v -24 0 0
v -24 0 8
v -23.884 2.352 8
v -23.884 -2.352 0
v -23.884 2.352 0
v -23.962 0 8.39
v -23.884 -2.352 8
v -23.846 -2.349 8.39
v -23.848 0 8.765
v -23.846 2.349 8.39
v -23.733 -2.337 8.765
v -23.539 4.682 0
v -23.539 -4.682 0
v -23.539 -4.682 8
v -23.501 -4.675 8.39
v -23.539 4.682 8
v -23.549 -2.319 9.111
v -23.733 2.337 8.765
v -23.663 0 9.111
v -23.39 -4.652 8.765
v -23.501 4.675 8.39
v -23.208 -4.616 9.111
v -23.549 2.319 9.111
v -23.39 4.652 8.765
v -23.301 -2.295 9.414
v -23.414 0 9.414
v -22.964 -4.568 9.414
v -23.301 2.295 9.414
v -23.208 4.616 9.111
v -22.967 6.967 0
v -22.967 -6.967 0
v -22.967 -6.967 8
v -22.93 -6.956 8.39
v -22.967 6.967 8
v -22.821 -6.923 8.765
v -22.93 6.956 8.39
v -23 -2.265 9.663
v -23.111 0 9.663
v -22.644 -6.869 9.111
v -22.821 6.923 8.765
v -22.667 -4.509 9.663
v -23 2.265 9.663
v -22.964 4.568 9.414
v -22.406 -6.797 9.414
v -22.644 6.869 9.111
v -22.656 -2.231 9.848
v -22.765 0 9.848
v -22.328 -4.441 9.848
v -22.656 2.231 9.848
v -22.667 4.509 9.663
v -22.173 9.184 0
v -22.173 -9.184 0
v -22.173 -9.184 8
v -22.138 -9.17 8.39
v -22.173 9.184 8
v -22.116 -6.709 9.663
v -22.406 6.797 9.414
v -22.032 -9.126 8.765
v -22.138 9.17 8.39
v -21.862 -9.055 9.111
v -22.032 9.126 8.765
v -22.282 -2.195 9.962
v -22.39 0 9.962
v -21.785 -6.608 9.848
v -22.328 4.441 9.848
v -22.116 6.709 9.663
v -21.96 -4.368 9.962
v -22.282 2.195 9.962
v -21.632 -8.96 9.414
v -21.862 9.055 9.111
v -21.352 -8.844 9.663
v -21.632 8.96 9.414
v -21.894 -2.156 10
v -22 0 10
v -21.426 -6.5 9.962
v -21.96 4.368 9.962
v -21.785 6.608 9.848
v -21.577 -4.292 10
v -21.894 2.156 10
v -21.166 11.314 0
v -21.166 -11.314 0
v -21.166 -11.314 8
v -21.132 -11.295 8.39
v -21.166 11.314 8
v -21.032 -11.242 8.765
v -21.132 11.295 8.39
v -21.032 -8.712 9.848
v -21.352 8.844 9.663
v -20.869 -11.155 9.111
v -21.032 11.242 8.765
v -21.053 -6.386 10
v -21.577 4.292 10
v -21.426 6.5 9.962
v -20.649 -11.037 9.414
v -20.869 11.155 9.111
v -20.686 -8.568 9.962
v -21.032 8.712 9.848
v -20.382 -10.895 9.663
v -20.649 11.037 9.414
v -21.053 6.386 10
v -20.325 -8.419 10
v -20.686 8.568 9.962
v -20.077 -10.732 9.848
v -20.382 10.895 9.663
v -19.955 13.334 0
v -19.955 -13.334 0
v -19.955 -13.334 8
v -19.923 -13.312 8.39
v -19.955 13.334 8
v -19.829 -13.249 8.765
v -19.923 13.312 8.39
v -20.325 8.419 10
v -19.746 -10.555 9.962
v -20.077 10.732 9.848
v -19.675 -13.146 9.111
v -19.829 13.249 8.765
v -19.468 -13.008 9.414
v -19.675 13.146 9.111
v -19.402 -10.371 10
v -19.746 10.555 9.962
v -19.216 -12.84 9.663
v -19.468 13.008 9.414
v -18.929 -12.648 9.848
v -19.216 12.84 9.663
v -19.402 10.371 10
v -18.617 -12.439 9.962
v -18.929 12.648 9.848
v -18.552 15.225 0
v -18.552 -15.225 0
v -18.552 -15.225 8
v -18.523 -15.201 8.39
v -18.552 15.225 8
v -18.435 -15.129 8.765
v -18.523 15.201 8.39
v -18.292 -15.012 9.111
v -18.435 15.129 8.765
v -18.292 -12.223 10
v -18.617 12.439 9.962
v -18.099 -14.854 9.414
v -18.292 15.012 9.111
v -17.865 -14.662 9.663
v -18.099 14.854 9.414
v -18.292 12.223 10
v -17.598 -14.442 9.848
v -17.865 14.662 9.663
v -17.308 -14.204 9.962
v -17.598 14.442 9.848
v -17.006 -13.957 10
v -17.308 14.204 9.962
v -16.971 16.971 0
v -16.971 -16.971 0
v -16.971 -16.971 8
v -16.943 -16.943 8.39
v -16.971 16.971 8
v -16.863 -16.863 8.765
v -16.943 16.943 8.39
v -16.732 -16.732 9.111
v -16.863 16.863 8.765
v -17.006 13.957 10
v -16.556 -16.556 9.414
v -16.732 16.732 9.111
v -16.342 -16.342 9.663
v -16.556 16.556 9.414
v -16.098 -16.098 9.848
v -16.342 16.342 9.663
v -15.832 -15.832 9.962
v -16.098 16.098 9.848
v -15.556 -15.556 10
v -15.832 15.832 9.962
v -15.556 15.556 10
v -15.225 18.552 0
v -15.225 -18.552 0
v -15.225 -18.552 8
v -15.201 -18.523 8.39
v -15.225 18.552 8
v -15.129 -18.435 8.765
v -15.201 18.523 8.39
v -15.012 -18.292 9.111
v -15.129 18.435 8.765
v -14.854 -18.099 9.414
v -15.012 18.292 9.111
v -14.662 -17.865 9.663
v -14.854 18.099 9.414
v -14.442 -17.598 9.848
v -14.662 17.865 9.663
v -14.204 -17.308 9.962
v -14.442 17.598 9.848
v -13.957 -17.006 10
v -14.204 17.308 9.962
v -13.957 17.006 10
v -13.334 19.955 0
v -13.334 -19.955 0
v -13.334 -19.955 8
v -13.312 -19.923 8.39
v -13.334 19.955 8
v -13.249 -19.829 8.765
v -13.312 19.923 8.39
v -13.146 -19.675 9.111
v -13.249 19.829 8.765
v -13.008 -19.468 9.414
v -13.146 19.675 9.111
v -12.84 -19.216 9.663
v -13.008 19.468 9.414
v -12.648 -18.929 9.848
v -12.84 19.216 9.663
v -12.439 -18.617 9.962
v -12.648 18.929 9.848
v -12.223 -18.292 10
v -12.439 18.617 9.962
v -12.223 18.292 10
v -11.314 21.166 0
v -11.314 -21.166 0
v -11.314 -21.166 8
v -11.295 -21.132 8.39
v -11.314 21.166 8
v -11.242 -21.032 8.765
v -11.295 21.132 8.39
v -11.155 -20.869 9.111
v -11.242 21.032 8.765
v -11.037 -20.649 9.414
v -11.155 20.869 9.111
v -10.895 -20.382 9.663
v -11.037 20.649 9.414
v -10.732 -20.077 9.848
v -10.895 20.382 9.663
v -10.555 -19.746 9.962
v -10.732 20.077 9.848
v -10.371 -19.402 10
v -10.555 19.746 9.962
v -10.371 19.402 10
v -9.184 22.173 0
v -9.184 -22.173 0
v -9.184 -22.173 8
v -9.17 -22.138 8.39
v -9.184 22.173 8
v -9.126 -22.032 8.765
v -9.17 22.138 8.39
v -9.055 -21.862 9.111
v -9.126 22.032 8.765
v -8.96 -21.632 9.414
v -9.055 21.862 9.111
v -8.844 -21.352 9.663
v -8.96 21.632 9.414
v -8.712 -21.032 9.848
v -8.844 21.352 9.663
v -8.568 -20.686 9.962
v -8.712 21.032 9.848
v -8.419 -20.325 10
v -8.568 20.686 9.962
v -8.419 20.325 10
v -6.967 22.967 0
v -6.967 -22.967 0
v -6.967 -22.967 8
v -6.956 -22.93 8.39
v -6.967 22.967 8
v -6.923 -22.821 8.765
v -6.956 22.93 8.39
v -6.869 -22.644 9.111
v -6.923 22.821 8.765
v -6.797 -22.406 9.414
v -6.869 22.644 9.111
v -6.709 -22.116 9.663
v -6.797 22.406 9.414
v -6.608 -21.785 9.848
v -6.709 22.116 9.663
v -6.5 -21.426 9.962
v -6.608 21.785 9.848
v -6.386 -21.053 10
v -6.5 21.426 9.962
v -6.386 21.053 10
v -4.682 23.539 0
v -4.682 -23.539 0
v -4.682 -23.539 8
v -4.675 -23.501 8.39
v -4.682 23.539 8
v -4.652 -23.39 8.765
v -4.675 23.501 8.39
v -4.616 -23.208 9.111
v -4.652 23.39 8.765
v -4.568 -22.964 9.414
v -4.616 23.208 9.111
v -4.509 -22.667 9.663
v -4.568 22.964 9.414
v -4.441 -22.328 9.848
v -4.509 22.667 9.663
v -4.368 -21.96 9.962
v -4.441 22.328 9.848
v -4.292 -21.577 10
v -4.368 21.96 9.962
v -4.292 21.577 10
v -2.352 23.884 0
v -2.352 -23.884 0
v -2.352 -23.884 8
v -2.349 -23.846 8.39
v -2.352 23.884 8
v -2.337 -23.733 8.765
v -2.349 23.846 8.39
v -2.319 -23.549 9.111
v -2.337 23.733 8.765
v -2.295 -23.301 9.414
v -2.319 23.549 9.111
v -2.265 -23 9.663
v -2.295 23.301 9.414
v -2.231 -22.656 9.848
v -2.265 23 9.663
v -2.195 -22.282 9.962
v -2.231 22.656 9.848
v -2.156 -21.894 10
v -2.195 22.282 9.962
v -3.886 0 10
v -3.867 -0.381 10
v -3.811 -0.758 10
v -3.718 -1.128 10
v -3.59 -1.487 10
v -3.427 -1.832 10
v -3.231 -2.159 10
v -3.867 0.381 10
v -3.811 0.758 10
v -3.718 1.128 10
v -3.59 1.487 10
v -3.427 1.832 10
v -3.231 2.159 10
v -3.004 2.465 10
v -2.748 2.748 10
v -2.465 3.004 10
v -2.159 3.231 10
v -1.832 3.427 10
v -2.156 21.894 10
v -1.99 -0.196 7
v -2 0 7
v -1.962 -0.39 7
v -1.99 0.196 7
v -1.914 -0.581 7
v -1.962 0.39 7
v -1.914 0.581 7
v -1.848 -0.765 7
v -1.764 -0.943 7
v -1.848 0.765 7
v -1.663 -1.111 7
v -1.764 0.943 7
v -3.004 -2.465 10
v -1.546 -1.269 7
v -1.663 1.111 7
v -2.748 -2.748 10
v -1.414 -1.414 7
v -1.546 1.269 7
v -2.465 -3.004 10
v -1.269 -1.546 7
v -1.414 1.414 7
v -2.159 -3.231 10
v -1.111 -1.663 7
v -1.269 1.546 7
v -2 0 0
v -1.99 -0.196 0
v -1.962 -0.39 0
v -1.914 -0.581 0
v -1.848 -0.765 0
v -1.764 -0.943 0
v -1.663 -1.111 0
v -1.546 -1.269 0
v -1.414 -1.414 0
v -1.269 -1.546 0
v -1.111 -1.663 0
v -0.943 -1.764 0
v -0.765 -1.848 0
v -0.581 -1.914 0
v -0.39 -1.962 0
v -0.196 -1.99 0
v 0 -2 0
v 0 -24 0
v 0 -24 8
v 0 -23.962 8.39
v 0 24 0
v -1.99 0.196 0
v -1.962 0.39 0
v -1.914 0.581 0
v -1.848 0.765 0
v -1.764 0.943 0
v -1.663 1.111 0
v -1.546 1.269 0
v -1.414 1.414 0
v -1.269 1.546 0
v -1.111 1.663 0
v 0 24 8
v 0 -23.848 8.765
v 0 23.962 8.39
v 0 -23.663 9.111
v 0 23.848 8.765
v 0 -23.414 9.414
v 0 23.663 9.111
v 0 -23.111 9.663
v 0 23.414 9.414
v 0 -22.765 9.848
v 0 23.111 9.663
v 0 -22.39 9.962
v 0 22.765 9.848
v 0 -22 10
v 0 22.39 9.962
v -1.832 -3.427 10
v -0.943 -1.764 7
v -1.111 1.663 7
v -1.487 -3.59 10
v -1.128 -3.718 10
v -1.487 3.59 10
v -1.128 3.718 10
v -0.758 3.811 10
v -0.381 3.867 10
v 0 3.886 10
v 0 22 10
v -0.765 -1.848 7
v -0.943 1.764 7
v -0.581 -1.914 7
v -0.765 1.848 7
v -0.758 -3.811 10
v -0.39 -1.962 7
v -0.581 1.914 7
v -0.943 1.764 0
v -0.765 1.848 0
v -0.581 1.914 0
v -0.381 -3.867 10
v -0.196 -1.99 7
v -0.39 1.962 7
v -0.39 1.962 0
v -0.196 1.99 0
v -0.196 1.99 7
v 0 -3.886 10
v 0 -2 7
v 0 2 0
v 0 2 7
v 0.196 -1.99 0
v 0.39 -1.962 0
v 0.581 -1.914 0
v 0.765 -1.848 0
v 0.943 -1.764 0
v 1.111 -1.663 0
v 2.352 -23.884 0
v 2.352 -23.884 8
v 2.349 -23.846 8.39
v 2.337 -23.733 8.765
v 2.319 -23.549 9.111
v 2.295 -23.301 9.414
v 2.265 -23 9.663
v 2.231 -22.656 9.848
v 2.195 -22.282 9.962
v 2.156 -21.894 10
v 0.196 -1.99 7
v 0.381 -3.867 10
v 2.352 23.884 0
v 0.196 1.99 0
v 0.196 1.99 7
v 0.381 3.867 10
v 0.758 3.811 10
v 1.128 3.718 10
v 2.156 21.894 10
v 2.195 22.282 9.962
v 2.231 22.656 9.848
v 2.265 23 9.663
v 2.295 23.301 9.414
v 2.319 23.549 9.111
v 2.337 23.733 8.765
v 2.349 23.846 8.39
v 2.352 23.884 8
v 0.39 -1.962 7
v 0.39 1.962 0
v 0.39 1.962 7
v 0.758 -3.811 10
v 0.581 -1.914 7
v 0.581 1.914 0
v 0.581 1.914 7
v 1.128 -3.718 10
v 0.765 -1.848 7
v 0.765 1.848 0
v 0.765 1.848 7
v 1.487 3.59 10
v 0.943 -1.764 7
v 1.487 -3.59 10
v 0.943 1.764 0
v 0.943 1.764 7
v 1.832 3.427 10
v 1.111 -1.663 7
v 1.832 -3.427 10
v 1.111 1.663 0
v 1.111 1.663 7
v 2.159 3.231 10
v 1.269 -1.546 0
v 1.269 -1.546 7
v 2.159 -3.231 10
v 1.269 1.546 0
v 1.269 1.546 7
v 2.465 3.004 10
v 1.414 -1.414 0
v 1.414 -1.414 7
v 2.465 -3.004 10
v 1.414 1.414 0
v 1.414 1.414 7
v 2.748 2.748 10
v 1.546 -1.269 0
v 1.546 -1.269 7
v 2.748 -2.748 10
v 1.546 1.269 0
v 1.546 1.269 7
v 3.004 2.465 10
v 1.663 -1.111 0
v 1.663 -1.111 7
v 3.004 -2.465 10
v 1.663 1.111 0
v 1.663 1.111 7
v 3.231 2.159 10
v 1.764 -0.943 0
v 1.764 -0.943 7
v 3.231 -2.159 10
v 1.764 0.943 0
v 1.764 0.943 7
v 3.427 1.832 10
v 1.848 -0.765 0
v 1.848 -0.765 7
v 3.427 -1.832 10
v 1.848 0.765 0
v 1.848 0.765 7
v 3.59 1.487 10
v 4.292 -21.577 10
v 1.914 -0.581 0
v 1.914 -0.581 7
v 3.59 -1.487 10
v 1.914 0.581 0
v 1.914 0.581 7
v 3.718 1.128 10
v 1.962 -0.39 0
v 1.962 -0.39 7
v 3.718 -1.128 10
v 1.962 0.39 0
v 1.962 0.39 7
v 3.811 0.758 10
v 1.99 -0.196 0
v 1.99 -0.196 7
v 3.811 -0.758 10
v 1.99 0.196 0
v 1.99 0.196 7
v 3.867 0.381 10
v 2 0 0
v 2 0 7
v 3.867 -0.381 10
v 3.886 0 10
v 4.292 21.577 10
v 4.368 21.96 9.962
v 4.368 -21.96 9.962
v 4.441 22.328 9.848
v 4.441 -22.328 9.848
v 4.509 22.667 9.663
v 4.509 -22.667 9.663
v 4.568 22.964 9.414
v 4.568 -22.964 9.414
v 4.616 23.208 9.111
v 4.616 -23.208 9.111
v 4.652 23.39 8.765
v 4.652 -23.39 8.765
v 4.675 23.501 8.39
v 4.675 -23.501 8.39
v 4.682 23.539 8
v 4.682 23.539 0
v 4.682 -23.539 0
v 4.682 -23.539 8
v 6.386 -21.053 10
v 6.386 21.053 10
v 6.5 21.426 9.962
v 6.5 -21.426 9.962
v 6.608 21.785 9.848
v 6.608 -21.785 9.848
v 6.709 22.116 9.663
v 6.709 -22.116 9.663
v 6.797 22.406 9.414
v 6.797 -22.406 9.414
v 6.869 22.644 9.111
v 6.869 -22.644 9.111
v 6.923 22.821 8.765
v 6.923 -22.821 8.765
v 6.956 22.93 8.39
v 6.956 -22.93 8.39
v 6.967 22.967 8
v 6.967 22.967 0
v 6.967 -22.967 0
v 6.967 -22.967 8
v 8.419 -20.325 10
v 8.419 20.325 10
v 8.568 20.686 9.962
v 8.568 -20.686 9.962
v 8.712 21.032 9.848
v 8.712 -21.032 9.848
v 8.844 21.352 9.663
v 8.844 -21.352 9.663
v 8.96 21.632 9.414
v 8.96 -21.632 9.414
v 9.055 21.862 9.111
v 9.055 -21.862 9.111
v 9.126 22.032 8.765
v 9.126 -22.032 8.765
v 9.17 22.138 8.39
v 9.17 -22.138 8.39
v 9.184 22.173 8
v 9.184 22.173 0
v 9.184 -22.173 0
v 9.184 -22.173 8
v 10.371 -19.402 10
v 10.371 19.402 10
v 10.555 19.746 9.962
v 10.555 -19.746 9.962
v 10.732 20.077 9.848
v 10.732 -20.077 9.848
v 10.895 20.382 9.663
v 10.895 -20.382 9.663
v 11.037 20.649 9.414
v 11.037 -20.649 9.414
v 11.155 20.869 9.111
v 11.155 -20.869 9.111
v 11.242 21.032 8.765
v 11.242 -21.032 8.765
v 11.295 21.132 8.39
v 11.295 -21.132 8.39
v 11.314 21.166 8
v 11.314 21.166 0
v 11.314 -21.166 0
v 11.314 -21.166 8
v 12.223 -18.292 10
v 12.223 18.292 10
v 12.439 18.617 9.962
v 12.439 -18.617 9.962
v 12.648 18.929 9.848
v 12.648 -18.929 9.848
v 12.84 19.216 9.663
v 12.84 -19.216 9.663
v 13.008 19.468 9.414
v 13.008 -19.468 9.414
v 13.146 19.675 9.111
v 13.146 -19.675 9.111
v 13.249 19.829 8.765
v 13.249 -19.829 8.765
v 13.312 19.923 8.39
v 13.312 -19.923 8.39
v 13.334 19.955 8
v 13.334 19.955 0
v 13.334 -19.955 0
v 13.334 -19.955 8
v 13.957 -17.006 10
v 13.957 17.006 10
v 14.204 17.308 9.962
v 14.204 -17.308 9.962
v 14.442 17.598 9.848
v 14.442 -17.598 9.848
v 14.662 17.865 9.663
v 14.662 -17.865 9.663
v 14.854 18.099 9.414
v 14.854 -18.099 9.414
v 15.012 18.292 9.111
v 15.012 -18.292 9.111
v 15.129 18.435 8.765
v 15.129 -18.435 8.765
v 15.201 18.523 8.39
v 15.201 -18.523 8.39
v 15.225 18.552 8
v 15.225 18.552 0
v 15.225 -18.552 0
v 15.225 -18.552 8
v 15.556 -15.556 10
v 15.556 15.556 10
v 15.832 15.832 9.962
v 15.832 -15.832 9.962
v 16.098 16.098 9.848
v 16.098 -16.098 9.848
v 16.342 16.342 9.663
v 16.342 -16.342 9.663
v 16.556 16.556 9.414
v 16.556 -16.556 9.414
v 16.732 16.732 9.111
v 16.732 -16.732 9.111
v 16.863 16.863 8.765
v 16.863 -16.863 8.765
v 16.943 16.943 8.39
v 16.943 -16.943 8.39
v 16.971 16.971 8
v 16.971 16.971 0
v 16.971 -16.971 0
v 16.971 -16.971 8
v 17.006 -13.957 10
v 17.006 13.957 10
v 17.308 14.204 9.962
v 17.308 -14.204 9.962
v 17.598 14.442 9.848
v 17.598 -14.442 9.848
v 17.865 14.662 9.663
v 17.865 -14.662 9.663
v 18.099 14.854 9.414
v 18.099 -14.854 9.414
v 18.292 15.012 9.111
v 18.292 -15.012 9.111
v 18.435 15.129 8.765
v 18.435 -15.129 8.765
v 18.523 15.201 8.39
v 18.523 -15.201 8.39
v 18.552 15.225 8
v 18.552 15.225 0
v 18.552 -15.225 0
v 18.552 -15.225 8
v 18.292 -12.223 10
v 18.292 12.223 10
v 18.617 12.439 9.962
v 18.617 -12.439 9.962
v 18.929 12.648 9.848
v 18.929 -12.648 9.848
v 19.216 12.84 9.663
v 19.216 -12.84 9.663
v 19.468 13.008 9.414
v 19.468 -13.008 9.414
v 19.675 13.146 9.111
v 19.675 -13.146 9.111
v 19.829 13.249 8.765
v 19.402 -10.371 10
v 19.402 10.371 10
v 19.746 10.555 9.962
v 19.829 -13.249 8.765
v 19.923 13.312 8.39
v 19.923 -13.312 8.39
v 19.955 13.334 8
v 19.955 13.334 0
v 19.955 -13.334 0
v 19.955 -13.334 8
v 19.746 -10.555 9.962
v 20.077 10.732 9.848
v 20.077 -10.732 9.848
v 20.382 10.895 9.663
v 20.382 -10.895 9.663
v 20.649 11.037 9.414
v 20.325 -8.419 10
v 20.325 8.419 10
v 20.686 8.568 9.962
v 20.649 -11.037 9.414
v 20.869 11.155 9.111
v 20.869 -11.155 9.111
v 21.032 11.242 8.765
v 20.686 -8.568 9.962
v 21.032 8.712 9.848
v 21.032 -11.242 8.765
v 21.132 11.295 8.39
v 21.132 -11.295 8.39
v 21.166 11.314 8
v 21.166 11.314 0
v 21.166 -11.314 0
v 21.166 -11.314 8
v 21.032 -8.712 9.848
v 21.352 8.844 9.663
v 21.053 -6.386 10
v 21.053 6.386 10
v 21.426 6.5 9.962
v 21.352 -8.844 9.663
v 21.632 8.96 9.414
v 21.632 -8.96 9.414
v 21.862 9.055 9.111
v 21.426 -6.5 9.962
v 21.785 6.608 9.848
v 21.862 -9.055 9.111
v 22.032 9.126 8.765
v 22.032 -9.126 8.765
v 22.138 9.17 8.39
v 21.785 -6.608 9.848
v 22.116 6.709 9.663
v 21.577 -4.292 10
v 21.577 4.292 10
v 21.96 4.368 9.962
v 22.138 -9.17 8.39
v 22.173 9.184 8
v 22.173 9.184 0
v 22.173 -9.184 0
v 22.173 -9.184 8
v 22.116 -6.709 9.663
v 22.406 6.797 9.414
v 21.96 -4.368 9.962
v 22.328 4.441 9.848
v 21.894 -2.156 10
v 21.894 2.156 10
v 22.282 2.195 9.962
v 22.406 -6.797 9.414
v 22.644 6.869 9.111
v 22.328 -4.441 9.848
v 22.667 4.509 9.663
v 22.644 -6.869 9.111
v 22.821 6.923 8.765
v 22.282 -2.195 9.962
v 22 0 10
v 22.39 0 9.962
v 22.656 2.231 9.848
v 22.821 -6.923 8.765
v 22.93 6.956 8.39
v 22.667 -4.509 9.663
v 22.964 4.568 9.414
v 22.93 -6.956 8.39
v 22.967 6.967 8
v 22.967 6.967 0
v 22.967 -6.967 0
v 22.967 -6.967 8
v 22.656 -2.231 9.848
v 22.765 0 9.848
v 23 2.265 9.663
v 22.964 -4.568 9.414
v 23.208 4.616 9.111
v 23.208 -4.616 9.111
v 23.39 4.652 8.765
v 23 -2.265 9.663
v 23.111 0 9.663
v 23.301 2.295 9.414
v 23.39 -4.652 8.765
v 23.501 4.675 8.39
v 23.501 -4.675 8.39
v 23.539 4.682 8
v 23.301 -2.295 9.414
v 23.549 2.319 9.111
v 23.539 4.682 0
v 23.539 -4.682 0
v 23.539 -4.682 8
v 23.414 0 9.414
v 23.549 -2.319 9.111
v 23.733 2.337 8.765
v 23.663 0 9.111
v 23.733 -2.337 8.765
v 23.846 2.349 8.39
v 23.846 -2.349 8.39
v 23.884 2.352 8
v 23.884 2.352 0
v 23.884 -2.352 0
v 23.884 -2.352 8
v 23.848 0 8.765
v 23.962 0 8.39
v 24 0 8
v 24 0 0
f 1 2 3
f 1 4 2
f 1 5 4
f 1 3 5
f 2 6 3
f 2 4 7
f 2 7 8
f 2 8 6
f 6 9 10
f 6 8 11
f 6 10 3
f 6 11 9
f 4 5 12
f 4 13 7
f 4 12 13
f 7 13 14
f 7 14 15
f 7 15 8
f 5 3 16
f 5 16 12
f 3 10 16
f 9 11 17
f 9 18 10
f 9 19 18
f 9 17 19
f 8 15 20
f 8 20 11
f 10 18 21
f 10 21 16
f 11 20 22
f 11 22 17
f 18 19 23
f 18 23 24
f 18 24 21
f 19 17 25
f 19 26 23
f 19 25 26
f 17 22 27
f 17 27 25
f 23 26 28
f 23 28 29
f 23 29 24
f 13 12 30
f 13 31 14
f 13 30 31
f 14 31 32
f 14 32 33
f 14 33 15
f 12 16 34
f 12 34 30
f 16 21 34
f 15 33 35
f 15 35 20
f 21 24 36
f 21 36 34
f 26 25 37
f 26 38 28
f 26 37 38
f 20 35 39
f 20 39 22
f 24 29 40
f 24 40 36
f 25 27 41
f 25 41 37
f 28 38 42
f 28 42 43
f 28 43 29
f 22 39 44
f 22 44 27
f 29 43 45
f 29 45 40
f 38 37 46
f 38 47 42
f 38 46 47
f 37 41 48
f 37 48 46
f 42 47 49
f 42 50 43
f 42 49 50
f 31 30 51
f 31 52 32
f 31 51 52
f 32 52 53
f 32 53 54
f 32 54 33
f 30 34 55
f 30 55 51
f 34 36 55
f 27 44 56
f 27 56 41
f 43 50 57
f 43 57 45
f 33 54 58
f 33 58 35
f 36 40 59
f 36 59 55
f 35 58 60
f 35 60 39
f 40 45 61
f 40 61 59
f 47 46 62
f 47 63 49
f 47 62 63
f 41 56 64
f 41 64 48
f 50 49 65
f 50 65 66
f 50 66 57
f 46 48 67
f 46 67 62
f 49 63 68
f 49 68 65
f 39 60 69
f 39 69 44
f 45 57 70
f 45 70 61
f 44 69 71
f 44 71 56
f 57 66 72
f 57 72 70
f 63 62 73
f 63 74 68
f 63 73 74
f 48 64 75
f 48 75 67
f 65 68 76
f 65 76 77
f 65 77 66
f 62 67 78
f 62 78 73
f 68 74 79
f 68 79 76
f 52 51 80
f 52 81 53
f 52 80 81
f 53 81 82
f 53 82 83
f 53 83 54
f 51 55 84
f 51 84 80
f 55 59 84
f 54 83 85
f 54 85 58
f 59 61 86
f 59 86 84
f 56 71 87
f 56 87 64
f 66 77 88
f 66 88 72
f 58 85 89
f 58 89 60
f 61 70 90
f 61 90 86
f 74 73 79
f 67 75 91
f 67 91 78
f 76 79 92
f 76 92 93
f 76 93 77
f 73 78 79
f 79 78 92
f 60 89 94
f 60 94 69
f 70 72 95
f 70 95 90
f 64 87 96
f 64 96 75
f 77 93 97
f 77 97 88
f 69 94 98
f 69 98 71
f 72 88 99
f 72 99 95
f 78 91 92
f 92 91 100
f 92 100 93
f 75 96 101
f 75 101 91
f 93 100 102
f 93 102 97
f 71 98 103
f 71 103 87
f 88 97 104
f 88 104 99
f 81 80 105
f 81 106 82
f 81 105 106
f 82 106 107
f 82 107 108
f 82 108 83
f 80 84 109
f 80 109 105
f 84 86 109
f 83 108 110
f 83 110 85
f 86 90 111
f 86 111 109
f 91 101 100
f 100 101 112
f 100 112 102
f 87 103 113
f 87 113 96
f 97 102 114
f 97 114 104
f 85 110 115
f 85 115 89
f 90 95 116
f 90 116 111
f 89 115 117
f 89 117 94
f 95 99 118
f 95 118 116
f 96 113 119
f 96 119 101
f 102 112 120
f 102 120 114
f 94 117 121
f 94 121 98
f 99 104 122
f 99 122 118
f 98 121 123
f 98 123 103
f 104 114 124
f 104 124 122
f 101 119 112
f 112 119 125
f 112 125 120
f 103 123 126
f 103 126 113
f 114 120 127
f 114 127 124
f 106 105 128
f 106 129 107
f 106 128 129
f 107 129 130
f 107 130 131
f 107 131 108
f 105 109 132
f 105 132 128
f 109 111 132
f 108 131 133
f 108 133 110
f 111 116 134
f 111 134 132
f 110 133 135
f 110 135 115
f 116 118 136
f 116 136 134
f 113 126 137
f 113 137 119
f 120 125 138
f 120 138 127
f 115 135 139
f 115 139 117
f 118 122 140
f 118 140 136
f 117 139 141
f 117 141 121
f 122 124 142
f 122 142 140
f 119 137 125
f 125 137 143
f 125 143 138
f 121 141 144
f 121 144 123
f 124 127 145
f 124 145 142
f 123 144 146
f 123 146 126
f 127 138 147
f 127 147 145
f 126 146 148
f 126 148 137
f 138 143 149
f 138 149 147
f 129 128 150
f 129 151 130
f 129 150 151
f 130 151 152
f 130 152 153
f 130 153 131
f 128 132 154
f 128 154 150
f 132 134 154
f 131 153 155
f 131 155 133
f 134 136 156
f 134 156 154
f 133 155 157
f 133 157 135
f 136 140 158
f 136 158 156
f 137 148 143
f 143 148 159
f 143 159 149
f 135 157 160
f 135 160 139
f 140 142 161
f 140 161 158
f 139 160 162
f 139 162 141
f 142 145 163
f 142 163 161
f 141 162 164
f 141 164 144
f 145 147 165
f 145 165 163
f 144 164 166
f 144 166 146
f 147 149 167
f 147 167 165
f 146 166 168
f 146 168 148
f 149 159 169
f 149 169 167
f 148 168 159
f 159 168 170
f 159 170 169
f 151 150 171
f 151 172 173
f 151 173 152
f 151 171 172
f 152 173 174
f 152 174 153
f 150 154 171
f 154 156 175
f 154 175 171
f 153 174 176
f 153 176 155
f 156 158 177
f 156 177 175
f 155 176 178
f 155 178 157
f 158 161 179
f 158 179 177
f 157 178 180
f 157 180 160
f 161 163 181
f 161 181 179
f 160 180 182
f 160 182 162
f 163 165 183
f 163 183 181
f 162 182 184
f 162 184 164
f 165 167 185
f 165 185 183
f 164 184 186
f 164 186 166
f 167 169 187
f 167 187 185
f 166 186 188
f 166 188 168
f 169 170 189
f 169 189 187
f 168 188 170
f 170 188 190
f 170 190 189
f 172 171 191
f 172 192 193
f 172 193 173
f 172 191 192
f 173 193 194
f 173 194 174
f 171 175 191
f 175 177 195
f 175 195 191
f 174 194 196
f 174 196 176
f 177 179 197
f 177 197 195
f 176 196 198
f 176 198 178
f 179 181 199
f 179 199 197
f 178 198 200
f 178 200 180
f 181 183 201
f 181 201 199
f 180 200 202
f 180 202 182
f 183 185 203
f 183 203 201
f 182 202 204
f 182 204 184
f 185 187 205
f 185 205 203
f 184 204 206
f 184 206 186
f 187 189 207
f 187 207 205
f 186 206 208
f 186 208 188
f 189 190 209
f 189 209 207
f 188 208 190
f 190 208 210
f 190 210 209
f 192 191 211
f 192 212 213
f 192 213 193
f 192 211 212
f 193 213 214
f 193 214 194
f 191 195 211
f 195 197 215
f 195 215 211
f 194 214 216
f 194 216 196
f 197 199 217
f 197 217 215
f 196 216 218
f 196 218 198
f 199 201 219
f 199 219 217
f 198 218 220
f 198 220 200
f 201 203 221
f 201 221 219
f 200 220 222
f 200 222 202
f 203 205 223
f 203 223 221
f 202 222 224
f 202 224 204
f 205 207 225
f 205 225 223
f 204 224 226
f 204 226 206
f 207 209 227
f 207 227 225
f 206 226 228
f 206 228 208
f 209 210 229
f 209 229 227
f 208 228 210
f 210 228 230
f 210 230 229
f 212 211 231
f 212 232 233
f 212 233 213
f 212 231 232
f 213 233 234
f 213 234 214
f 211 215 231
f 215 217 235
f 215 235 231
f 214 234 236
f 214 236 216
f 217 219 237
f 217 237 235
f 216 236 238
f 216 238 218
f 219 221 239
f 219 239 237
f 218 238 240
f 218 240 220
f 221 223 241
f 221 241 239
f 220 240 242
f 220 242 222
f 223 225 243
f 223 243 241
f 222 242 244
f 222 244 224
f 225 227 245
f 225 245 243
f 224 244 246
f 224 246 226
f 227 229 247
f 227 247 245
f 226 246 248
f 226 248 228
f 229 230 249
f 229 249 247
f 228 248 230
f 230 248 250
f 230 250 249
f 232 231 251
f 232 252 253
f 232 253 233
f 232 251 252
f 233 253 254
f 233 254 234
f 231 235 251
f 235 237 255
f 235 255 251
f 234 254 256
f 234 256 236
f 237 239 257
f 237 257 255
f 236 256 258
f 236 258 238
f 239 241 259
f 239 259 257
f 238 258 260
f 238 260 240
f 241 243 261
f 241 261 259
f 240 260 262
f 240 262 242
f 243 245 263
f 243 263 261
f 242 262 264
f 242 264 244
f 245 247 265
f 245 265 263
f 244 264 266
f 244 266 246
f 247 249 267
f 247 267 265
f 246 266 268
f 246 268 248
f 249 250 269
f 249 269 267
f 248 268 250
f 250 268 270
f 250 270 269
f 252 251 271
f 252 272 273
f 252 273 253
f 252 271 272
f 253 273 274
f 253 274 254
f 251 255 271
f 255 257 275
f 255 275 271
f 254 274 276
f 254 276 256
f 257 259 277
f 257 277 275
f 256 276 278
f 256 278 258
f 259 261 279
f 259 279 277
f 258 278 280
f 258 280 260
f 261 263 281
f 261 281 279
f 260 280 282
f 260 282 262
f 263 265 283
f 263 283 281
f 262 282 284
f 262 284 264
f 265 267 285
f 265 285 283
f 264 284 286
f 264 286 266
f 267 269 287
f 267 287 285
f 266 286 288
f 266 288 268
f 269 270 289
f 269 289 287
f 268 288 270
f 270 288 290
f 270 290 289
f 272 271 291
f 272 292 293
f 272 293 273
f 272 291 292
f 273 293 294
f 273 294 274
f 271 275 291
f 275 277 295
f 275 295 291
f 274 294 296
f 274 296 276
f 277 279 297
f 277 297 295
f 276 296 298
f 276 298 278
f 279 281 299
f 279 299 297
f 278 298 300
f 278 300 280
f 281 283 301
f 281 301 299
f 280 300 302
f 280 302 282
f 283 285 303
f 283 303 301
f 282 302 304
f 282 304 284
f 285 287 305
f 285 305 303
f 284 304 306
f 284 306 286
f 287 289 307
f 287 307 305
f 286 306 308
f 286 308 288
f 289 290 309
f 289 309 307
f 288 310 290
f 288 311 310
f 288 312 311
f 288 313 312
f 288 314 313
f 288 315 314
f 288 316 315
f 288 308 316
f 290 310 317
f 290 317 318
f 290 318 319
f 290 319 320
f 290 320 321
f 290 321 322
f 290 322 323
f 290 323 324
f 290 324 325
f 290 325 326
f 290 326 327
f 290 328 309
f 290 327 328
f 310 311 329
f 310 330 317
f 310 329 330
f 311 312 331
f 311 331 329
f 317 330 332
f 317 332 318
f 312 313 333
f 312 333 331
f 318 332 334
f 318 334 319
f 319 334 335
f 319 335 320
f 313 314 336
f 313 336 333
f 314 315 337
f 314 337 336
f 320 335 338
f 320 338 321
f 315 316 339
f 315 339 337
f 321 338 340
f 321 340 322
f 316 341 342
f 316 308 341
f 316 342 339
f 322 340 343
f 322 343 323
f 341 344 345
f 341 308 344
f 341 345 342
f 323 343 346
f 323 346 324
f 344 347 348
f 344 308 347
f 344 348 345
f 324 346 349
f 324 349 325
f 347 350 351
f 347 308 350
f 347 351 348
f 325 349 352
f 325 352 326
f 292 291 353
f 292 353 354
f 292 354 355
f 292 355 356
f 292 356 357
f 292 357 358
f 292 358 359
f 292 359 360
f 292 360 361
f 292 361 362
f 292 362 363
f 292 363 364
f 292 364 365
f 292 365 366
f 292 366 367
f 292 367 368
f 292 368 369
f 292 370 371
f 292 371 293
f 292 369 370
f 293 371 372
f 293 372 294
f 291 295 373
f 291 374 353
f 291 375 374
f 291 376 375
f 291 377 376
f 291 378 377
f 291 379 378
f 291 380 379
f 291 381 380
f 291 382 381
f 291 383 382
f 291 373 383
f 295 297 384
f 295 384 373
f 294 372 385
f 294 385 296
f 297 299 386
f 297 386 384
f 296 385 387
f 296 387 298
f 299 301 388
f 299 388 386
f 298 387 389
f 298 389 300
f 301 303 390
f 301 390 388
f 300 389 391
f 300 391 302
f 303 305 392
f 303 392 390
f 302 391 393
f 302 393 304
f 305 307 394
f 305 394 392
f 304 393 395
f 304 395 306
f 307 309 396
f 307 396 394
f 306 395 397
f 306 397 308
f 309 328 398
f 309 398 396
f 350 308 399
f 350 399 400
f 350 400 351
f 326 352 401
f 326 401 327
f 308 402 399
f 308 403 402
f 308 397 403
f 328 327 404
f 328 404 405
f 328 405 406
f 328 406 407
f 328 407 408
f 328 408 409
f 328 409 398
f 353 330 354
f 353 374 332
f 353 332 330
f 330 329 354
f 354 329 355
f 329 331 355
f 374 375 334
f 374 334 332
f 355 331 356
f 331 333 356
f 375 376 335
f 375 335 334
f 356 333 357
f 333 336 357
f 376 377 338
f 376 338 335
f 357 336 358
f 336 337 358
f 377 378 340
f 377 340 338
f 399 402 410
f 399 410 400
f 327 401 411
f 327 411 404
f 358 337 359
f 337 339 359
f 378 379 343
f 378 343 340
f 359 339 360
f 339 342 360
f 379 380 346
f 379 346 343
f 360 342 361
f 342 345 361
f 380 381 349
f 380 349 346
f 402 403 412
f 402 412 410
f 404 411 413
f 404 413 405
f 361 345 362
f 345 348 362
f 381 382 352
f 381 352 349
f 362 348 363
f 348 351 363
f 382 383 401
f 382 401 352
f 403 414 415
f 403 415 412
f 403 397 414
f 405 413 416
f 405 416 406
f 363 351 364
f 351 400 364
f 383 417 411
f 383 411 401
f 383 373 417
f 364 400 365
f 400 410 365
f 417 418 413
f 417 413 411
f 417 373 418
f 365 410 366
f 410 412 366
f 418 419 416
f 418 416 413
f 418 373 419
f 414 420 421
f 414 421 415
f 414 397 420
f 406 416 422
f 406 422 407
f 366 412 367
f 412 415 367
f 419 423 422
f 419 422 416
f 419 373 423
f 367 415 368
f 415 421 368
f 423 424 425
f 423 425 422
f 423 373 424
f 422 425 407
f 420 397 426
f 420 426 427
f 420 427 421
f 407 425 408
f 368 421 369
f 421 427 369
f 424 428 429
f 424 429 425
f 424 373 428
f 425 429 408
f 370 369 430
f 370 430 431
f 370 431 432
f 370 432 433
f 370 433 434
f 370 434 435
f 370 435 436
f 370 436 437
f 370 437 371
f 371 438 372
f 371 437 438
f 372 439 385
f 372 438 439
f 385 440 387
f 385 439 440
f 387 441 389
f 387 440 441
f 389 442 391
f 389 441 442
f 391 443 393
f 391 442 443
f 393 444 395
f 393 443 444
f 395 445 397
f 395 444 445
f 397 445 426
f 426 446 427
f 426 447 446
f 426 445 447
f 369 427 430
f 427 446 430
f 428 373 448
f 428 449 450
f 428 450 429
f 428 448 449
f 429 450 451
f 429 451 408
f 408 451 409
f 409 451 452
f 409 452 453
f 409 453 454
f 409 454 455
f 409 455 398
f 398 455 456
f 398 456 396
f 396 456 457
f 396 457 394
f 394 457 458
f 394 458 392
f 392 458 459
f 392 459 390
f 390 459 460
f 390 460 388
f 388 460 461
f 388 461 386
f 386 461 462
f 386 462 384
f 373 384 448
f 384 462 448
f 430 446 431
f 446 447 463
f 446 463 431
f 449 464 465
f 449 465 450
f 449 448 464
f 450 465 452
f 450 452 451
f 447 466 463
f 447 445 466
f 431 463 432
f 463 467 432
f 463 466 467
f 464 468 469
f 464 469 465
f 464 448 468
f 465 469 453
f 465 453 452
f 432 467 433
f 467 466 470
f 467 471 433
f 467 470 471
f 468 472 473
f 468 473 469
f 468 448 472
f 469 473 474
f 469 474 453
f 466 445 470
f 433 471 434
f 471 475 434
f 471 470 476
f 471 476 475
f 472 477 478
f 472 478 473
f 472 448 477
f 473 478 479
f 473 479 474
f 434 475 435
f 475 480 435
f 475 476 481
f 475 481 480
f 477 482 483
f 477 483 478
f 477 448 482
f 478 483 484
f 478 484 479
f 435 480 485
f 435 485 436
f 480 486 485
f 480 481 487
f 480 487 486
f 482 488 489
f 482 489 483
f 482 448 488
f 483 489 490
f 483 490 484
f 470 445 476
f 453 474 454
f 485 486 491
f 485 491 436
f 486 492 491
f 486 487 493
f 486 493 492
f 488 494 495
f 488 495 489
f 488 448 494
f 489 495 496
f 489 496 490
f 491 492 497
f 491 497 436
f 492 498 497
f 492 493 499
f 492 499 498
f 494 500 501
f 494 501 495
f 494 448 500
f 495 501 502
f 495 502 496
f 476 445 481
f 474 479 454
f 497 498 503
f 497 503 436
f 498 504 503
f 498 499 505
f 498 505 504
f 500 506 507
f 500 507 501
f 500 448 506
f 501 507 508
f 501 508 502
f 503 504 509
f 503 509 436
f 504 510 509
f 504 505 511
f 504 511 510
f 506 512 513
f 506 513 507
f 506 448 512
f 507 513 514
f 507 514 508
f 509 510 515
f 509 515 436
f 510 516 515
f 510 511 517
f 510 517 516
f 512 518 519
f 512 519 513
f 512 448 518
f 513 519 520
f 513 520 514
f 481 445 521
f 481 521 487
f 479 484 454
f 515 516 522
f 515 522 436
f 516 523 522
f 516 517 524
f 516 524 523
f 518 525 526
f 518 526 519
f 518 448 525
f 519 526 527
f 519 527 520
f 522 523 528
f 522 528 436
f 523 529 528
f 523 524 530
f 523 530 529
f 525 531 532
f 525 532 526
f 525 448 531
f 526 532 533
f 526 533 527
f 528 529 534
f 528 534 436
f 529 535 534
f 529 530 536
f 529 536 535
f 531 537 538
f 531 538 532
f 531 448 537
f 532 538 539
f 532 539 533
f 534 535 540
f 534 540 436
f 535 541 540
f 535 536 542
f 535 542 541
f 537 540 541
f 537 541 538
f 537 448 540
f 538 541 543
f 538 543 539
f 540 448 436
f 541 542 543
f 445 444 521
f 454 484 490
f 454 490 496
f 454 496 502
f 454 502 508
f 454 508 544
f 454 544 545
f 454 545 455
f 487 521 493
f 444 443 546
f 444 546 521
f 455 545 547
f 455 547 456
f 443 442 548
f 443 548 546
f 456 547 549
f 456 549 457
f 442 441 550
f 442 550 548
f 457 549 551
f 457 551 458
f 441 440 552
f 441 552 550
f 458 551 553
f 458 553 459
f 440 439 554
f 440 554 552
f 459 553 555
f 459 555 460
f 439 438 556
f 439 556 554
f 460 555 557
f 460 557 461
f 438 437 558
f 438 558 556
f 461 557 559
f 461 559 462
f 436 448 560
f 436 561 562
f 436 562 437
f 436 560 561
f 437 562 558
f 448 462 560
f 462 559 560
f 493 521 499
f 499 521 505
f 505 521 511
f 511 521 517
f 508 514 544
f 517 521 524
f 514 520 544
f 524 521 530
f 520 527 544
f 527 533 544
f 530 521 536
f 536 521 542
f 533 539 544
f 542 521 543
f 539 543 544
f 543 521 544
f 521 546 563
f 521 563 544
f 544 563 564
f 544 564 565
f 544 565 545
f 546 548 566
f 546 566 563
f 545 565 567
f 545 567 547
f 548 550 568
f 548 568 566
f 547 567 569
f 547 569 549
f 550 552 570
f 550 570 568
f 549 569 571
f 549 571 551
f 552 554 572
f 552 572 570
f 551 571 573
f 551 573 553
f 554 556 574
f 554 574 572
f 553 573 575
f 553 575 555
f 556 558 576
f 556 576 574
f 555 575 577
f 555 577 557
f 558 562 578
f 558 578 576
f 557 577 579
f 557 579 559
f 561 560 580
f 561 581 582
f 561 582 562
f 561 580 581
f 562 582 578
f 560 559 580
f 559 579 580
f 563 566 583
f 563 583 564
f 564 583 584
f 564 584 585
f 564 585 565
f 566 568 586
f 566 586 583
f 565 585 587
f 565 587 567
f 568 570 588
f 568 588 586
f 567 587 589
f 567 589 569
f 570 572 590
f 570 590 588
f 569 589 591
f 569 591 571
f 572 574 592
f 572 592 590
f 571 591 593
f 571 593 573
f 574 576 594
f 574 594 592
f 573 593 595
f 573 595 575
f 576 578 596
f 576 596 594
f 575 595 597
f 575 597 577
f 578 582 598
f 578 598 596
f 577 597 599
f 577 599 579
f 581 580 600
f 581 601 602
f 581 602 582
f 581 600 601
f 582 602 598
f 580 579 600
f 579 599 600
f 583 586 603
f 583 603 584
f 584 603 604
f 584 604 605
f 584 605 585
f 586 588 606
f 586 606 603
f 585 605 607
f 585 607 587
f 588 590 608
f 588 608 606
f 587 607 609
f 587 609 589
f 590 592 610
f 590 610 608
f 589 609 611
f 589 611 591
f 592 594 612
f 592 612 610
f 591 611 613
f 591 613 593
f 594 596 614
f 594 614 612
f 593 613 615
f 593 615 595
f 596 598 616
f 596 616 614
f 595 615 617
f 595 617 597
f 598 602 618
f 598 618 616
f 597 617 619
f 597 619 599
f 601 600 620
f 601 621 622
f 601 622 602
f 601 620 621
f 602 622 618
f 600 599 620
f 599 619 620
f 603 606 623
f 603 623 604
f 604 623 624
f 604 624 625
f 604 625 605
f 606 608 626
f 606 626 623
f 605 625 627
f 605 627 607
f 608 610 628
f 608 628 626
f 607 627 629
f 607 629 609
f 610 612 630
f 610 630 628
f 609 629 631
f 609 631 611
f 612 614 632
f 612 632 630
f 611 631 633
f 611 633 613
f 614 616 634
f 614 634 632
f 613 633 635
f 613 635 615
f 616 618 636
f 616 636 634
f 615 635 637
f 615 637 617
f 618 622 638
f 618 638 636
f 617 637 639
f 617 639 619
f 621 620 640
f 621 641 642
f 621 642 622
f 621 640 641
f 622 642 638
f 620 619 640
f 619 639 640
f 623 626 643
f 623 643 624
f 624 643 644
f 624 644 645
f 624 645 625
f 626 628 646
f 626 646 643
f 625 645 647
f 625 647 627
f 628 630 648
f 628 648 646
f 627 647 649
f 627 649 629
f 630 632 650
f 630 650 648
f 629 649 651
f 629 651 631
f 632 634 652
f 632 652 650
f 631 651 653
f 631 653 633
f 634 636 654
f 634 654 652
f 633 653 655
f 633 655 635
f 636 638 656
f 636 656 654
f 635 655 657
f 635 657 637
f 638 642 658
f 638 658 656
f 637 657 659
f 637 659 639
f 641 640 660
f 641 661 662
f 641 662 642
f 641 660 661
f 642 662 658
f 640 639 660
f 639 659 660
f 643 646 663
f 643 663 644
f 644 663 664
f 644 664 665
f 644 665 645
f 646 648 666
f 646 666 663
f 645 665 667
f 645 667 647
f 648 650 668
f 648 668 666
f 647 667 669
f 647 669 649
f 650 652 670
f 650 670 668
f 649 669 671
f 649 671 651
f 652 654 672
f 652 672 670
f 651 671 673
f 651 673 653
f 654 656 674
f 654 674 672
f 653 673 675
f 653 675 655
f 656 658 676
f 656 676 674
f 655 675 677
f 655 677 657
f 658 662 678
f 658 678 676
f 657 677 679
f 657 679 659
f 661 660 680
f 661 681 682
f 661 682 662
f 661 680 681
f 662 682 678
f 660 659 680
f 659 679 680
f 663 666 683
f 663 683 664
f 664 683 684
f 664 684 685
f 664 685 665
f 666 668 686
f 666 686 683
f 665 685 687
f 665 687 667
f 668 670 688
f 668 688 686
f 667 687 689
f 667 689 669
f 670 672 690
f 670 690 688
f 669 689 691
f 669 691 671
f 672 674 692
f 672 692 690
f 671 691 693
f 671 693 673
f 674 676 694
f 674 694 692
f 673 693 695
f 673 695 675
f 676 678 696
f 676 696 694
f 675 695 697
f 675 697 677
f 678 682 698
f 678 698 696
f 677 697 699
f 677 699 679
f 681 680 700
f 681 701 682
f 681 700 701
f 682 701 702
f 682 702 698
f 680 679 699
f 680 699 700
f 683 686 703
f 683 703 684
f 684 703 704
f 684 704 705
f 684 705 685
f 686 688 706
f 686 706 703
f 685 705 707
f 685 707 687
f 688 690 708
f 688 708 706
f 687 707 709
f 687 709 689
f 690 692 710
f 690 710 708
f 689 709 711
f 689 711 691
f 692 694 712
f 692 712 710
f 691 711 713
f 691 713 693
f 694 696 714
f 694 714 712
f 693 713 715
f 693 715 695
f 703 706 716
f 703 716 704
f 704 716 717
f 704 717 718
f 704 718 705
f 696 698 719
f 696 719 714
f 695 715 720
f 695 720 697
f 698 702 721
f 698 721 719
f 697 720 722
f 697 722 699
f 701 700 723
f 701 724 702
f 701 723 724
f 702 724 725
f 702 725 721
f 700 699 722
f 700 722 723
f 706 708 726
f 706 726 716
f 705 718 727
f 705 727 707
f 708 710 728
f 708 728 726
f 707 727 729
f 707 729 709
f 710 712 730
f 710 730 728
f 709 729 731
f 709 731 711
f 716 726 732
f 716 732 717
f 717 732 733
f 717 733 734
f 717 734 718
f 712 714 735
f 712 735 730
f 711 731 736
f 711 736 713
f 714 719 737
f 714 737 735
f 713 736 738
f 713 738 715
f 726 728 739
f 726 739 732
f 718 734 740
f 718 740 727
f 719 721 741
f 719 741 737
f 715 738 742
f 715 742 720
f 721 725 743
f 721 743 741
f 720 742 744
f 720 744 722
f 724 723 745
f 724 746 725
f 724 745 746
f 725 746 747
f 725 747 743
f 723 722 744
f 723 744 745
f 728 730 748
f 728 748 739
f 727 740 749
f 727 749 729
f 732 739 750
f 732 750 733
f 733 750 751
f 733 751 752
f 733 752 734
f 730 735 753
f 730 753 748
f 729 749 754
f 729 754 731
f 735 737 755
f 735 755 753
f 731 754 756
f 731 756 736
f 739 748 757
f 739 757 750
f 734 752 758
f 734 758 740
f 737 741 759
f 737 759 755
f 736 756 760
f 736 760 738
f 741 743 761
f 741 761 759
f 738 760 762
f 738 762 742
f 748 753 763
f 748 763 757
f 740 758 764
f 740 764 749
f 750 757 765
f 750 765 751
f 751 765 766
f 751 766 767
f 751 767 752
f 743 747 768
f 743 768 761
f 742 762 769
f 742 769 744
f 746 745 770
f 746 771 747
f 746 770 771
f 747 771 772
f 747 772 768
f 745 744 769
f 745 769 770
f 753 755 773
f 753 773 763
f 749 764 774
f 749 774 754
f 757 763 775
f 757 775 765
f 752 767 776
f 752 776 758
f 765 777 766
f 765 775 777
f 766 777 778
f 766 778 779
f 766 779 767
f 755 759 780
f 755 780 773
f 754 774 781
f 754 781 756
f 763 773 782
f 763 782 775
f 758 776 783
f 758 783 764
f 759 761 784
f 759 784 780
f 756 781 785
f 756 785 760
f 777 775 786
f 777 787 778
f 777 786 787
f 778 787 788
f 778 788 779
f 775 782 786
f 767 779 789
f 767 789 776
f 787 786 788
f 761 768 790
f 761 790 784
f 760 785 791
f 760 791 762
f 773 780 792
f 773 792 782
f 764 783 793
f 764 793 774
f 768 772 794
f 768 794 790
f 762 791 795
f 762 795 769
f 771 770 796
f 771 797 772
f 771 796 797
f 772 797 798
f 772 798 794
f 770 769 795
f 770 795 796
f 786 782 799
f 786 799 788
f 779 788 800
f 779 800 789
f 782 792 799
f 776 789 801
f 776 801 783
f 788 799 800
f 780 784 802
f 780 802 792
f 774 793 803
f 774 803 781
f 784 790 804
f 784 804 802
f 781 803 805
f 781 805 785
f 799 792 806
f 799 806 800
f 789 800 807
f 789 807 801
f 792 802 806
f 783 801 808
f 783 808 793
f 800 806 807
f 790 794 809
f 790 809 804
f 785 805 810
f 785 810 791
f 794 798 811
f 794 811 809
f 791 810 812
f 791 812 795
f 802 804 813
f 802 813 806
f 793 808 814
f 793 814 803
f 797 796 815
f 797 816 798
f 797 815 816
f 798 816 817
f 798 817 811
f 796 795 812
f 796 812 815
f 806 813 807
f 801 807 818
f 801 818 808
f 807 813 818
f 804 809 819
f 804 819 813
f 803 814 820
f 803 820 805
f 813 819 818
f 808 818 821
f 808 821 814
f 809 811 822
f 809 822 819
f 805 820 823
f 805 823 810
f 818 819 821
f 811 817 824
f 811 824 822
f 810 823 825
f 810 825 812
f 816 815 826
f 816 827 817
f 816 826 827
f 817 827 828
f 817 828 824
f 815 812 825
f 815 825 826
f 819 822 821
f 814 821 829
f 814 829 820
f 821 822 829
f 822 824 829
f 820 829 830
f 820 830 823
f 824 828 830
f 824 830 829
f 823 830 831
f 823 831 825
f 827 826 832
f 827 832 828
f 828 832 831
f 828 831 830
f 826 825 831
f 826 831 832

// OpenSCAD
plunger_radius = 24;
plunger_thickness = 10;
plunger_fillet = 2;
plunger_hole_radius = 2;
m4_flange_radius = 5;

module plunger() {
    difference() {
        union() {
            // Main cylinder
            cylinder(h = plunger_thickness - plunger_fillet, r = plunger_radius, $fn = 64);

            // Rounded fillet on top edge
            translate([0, 0, plunger_thickness - plunger_fillet]) {
                rotate_extrude($fn = 64) {
                    translate([plunger_radius - plunger_fillet, 0, 0]) {
                        circle(r = plunger_fillet, $fn = 32);
                    }
                }
            }

            // Top flat surface
            translate([0, 0, plunger_thickness - plunger_fillet]) {
                cylinder(h = plunger_fillet, r = plunger_radius - plunger_fillet, $fn = 64);
            }
        }

        // Center hole
        translate([0, 0, -0.5]) {
            cylinder(h = plunger_thickness + 1, r = plunger_hole_radius, $fn = 64);
        }

        // M4 countersunk chamfer
        m4_countersink_head_radius = 4.2;
        m4_countersink_depth = 3.0;
        translate([0, 0, plunger_thickness - m4_countersink_depth]) {
            cylinder(h = m4_countersink_depth + 0.5, r1 = plunger_hole_radius, r2 = m4_countersink_head_radius, $fn = 64);
        }
    }
}

plunger();
